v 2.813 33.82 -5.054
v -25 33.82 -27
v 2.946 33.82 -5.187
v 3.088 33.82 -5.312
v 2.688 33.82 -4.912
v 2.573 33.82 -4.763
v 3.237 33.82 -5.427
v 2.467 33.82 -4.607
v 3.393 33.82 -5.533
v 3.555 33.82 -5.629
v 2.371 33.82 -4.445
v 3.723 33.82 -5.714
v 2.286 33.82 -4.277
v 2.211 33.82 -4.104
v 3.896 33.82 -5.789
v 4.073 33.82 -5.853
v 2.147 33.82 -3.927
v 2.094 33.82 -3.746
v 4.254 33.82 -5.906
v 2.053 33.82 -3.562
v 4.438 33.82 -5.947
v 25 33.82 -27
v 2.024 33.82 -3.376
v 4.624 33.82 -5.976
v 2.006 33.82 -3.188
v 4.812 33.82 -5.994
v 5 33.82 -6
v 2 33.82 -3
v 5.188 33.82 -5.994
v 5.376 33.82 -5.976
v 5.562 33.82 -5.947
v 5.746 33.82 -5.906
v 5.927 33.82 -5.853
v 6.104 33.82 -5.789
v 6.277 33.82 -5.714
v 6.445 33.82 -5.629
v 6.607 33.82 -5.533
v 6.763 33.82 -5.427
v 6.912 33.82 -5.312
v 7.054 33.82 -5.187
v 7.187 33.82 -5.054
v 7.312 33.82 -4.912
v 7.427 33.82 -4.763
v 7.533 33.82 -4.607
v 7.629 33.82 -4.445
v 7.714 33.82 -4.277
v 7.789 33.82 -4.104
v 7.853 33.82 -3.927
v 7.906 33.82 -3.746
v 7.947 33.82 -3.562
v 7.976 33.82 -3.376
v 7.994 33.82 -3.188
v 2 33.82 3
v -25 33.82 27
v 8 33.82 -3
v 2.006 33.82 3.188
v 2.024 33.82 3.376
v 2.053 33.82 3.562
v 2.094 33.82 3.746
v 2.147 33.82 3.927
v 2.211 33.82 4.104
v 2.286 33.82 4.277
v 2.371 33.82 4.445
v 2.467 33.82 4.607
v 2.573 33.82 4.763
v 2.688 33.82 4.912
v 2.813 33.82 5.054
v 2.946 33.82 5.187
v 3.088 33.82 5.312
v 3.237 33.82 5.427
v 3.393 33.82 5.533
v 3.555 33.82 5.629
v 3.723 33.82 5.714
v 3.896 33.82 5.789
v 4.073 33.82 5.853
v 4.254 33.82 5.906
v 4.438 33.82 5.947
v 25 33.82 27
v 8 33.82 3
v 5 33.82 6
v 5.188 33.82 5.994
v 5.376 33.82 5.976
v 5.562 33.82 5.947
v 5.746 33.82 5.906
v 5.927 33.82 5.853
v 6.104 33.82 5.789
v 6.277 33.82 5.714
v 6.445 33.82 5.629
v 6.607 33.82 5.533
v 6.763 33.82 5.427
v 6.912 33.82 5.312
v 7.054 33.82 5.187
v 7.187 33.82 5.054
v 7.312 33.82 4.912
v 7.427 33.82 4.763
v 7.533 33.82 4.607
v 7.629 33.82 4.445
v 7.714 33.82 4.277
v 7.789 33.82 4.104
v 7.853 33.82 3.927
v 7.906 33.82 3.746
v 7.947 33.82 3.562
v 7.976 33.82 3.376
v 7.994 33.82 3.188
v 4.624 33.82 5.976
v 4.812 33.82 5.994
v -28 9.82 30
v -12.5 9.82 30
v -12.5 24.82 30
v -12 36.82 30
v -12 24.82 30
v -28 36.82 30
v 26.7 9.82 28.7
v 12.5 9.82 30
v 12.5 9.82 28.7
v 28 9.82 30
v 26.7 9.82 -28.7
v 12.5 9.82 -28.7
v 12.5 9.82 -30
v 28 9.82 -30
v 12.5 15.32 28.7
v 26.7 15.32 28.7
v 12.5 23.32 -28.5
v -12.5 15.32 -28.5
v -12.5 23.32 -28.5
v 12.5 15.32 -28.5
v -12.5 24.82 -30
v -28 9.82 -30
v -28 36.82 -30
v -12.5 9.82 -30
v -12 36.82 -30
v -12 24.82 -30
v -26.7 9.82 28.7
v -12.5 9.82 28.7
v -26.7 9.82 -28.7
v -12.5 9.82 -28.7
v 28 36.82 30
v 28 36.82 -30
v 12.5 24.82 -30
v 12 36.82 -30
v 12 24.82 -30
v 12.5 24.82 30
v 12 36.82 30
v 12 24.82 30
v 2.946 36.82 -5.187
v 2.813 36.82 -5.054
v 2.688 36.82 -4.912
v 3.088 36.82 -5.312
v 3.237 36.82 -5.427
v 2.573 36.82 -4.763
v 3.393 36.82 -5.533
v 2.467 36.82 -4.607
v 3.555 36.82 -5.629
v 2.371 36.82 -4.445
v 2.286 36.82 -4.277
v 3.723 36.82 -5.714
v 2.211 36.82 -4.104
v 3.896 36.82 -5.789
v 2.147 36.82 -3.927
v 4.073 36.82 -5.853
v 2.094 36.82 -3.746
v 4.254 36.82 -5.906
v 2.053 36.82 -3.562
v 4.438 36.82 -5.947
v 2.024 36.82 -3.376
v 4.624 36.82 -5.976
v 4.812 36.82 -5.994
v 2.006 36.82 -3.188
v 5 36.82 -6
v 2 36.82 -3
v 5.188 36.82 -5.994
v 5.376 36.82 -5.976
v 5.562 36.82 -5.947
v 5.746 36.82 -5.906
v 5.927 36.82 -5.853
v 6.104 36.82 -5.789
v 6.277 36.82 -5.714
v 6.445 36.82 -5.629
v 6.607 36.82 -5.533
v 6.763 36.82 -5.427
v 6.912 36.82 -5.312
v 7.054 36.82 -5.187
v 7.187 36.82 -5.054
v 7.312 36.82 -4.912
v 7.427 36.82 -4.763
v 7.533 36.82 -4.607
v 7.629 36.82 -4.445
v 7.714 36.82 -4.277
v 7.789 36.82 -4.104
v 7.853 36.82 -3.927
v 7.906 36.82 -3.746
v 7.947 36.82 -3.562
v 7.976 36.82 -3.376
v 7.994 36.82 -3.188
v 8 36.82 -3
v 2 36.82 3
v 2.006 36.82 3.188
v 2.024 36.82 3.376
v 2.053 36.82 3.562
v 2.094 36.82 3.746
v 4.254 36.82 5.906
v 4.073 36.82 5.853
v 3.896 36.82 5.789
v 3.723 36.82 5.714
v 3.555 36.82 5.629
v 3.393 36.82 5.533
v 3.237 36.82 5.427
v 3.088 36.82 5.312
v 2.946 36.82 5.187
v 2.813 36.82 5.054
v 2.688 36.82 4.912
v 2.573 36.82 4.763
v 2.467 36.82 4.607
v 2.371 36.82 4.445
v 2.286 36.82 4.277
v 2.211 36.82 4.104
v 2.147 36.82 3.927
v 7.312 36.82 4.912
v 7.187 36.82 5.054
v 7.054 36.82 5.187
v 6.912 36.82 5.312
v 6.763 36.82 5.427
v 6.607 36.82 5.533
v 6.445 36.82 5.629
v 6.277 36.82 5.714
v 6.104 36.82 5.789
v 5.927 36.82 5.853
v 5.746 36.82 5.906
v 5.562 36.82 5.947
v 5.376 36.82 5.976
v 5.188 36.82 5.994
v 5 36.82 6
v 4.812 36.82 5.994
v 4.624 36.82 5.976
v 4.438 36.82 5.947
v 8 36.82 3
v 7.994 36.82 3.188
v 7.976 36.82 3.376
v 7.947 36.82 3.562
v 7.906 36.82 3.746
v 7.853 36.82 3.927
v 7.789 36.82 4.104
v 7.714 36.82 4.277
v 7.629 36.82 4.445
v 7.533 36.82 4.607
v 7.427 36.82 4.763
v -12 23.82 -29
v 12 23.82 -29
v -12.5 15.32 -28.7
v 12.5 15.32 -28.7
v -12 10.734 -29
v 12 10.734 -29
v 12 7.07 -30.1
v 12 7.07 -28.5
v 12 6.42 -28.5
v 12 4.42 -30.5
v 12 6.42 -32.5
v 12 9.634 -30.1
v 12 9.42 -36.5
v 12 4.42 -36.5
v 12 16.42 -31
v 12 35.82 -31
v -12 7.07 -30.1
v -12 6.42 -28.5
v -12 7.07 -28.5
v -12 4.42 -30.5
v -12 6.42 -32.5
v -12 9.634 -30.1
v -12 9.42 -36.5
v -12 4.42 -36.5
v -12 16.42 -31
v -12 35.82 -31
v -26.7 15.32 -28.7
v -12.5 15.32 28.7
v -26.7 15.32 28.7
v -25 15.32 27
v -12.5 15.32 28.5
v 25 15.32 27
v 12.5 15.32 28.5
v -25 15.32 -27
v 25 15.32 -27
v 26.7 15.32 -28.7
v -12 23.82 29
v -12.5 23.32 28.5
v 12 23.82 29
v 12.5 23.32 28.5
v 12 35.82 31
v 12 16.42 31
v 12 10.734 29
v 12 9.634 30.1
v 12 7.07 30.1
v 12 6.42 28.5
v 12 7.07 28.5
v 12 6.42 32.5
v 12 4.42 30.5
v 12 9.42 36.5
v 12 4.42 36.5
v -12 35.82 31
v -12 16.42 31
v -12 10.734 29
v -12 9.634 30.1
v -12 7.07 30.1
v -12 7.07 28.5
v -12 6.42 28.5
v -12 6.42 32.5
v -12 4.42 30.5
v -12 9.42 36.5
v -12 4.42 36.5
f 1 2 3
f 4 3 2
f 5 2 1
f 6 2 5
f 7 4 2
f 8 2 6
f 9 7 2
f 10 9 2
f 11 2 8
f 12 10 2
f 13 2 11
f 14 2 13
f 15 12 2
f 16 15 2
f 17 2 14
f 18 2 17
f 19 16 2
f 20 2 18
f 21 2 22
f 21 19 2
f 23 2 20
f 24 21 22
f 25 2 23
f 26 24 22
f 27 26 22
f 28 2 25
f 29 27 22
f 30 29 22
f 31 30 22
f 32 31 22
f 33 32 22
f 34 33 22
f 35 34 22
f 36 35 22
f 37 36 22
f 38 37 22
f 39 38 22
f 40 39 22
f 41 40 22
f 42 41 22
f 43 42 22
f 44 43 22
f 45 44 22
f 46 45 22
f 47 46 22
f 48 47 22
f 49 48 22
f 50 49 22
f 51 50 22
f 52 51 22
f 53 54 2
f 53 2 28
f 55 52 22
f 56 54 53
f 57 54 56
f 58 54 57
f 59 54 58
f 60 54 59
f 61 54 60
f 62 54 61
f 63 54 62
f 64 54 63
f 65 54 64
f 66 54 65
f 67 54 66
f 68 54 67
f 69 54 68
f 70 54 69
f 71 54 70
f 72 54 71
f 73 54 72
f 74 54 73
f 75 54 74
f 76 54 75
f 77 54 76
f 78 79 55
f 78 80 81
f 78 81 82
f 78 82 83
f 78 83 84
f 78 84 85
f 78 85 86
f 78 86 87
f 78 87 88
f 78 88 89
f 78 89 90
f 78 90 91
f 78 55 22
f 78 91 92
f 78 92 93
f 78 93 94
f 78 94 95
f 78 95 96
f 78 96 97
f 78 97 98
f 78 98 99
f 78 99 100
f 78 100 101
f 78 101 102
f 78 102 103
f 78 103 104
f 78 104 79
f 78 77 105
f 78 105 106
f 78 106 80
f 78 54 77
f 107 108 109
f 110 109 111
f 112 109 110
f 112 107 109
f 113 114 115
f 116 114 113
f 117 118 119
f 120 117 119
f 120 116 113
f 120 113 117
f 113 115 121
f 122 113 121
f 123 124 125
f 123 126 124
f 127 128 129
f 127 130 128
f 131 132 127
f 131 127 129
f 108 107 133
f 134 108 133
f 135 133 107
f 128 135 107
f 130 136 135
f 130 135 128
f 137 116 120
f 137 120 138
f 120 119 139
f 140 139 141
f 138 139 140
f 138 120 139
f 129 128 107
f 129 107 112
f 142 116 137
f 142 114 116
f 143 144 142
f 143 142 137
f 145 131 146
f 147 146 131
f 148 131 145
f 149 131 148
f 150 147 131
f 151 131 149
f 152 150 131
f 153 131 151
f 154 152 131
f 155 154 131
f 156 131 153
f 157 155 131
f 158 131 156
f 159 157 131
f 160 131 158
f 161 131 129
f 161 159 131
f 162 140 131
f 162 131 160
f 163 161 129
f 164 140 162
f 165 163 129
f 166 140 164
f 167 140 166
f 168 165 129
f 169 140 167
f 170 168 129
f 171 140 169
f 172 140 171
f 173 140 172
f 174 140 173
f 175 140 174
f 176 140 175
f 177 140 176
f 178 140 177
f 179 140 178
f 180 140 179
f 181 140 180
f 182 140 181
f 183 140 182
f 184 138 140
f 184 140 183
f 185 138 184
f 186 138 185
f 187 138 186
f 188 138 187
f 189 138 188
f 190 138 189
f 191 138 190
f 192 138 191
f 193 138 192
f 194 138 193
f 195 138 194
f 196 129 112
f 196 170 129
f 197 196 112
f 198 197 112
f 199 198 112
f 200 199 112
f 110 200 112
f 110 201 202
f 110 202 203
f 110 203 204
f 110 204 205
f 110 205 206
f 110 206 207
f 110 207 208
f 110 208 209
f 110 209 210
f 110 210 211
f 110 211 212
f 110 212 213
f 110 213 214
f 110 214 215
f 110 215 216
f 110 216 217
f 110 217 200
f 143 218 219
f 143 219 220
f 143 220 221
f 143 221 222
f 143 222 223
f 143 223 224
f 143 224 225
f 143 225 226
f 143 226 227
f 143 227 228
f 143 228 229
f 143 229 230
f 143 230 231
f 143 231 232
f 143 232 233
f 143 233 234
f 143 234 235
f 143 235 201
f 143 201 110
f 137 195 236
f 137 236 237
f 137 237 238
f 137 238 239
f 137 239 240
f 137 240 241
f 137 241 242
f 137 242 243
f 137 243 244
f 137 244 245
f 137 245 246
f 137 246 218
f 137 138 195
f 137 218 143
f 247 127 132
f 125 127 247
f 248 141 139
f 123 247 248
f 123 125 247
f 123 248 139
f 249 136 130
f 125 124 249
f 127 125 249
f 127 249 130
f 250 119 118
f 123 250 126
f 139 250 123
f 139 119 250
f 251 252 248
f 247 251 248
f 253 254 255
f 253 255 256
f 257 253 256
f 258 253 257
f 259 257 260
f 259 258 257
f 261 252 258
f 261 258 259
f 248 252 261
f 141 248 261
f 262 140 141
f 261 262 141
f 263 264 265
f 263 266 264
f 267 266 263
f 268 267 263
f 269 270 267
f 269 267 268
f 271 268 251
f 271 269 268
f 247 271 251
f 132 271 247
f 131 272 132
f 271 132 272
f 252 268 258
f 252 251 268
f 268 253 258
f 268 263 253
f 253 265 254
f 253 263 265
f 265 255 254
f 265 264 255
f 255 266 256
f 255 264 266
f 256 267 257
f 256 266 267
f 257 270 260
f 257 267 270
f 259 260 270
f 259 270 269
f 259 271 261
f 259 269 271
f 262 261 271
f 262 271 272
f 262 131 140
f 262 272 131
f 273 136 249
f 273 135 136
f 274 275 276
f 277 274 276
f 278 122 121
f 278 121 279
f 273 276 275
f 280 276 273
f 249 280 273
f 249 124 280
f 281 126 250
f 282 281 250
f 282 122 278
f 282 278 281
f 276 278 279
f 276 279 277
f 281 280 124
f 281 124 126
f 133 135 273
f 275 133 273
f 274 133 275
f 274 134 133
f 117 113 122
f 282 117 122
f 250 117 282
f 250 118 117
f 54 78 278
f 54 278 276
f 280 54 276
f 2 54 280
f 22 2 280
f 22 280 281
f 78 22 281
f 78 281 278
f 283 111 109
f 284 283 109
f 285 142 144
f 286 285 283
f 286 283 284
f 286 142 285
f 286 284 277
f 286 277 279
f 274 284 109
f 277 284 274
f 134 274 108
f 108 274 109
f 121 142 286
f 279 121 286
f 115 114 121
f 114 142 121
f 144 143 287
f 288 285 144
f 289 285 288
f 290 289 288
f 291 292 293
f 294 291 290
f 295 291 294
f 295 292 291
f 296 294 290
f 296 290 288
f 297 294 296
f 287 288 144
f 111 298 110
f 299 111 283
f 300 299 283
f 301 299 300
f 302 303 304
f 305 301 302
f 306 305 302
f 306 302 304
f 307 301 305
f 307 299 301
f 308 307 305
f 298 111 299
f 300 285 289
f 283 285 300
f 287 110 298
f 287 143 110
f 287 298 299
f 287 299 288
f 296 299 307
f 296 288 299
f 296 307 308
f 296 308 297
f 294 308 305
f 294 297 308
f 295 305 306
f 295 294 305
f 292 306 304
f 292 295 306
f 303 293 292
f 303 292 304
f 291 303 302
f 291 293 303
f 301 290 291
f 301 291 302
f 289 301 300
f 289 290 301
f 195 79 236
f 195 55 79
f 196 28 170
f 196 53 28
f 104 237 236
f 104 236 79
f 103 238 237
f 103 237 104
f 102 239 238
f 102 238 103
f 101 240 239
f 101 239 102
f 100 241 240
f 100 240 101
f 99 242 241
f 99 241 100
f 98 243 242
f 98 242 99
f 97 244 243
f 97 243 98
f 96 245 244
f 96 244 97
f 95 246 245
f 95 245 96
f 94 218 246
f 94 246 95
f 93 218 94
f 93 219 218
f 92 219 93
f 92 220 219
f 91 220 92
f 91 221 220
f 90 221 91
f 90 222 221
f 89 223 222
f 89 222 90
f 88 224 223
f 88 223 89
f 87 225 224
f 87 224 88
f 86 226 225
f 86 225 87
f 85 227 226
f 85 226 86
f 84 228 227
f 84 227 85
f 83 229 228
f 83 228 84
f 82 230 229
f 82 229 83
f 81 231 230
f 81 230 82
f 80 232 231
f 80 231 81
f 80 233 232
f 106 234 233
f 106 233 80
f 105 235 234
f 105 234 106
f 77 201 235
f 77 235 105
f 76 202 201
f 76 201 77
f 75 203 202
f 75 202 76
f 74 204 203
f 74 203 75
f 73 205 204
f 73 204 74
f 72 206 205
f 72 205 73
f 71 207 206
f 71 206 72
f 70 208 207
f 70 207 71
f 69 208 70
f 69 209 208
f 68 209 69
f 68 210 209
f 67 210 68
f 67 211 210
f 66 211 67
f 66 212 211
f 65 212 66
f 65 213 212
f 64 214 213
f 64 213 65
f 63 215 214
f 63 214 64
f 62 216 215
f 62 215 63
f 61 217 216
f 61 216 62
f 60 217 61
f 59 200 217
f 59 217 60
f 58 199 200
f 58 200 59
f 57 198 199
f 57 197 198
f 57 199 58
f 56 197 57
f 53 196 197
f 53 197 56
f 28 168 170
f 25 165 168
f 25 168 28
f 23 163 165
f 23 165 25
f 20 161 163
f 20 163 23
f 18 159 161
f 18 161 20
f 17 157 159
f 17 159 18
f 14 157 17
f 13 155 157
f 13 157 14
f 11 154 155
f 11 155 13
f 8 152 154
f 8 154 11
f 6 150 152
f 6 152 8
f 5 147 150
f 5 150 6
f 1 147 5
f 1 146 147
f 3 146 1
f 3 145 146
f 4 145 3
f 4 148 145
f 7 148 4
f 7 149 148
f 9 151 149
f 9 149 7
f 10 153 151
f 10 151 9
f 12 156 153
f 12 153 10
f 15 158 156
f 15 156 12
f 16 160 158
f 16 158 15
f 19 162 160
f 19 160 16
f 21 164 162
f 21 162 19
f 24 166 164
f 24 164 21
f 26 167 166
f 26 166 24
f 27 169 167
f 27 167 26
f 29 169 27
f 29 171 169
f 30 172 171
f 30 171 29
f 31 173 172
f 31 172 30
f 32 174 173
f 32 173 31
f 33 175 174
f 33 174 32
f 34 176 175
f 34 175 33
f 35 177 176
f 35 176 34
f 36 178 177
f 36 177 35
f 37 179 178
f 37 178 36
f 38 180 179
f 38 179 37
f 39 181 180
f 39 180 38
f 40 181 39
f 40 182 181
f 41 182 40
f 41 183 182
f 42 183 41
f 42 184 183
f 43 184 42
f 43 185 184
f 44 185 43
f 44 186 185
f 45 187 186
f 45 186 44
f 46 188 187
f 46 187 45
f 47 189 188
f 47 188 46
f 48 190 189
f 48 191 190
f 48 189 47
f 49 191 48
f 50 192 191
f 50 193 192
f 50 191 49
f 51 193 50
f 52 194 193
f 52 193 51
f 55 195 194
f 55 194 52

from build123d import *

# Parameters (mm, degrees)
SKETCH1_W           = 56
SKETCH1_H           = 60
SKETCH1_W_2         = 50
SKETCH1_H_2         = 54
BOSS_EXTRUDE1_DEPTH = 24
SKETCH2_W           = 56
SKETCH2_H           = 60
BOSS_EXTRUDE2_DEPTH = 3
CUT_EXTRUDE1_DEPTH  = 12.5
BOSS_EXTRUDE3_DEPTH = 12
SKETCH5_W           = 53.4
SKETCH5_H           = 57.4
SKETCH5_W_2         = 50
SKETCH5_H_2         = 54
CUT_EXTRUDE2_DEPTH  = 5.5
CUT_EXTRUDE3_REACH  = 58.267
SKETCH6_W           = 6
SKETCH6_H           = 12
FILLET3_R           = 3


with BuildPart() as part:
    # Sketch1 → Boss-Extrude1 (new body)
    with BuildSketch(Plane(origin=(0, 9.820251789, 0), x_dir=(1, 0, 0), z_dir=(0, 1, 0))):
        Rectangle(SKETCH1_W, SKETCH1_H)
        Rectangle(SKETCH1_W_2, SKETCH1_H_2, mode=Mode.SUBTRACT)
    extrude(amount=BOSS_EXTRUDE1_DEPTH)

    # Sketch2 → Boss-Extrude2 (add)
    with BuildSketch(Plane(origin=(0, 33.820251789, 0), x_dir=(1, 0, 0), z_dir=(0, 1, 0))):
        Rectangle(SKETCH2_W, SKETCH2_H)
    extrude(amount=BOSS_EXTRUDE2_DEPTH)

    # Sketch3 → Cut-Extrude1 (cut, symmetric)
    with BuildSketch(Plane(origin=(0, 0, 0), x_dir=(0, 0, -1), z_dir=(1, 0, 0))):
        Polygon((28.5, 9.820251789), (28.5, 23.320251789), (30, 24.820251789), (30, 9.820251789), align=None)
    cut_extrude1 = extrude(amount=CUT_EXTRUDE1_DEPTH, both=True, mode=Mode.SUBTRACT)

    # Sketch4 → Boss-Extrude3 (add, symmetric)
    with BuildSketch(Plane(origin=(0, 0, 0), x_dir=(0, 0, -1), z_dir=(1, 0, 0))):
        Polygon((30.1, 7.070251789), (28.5, 7.070251789), (28.5, 6.420251789), (30.5, 4.420251789), (32.5, 6.420251789), (36.5, 4.420251789), (36.5, 9.420251789), (31, 16.420251789), (31, 35.820251789), (30, 36.820251789), (29, 36.820251789), (29, 10.734465351), (30.1, 9.634465351), align=None)
    boss_extrude3 = extrude(amount=BOSS_EXTRUDE3_DEPTH, both=True)

    # Sketch5 → Cut-Extrude2 (cut)
    with BuildSketch(Plane.XZ.offset(-9.820251789)):
        Rectangle(SKETCH5_W, SKETCH5_H)
        Rectangle(SKETCH5_W_2, SKETCH5_H_2, mode=Mode.SUBTRACT)
    extrude(amount=-CUT_EXTRUDE2_DEPTH, mode=Mode.SUBTRACT)

    # Mirror1: Cut-Extrude1, Boss-Extrude3 across plane
    add(cut_extrude1.mirror(Plane.XY), mode=Mode.SUBTRACT)
    add(boss_extrude3.mirror(Plane.XY))

    # Sketch6 → Cut-Extrude3 (cut, up to next)
    with BuildSketch(Plane(origin=(0, 36.820251789, 0), x_dir=(1, 0, 0), z_dir=(0, 1, 0)), mode=Mode.PRIVATE) as cut_extrude3_sk1:
        with Locations((5, 0)):
            Rectangle(SKETCH6_W, SKETCH6_H)
    cut_extrude3_tool1 = extrude(cut_extrude3_sk1.sketch, amount=-CUT_EXTRUDE3_REACH, mode=Mode.PRIVATE) & part.part
    add(cut_extrude3_tool1.solids().sort_by_distance((5, 36.820252, 0))[0], mode=Mode.SUBTRACT)

    # Fillet3
    fillet3_edges = [part.edges().sort_by_distance(p)[0] for p in [
        (2, 35.320251789, 6),
        (8, 35.320251789, 6),
        (8, 35.320251789, -6),
        (2, 35.320251789, -6),
    ]]
    fillet(fillet3_edges, radius=FILLET3_R - 0.0001)  # a hair under: the kernel refuses the full size


solid = part.part
